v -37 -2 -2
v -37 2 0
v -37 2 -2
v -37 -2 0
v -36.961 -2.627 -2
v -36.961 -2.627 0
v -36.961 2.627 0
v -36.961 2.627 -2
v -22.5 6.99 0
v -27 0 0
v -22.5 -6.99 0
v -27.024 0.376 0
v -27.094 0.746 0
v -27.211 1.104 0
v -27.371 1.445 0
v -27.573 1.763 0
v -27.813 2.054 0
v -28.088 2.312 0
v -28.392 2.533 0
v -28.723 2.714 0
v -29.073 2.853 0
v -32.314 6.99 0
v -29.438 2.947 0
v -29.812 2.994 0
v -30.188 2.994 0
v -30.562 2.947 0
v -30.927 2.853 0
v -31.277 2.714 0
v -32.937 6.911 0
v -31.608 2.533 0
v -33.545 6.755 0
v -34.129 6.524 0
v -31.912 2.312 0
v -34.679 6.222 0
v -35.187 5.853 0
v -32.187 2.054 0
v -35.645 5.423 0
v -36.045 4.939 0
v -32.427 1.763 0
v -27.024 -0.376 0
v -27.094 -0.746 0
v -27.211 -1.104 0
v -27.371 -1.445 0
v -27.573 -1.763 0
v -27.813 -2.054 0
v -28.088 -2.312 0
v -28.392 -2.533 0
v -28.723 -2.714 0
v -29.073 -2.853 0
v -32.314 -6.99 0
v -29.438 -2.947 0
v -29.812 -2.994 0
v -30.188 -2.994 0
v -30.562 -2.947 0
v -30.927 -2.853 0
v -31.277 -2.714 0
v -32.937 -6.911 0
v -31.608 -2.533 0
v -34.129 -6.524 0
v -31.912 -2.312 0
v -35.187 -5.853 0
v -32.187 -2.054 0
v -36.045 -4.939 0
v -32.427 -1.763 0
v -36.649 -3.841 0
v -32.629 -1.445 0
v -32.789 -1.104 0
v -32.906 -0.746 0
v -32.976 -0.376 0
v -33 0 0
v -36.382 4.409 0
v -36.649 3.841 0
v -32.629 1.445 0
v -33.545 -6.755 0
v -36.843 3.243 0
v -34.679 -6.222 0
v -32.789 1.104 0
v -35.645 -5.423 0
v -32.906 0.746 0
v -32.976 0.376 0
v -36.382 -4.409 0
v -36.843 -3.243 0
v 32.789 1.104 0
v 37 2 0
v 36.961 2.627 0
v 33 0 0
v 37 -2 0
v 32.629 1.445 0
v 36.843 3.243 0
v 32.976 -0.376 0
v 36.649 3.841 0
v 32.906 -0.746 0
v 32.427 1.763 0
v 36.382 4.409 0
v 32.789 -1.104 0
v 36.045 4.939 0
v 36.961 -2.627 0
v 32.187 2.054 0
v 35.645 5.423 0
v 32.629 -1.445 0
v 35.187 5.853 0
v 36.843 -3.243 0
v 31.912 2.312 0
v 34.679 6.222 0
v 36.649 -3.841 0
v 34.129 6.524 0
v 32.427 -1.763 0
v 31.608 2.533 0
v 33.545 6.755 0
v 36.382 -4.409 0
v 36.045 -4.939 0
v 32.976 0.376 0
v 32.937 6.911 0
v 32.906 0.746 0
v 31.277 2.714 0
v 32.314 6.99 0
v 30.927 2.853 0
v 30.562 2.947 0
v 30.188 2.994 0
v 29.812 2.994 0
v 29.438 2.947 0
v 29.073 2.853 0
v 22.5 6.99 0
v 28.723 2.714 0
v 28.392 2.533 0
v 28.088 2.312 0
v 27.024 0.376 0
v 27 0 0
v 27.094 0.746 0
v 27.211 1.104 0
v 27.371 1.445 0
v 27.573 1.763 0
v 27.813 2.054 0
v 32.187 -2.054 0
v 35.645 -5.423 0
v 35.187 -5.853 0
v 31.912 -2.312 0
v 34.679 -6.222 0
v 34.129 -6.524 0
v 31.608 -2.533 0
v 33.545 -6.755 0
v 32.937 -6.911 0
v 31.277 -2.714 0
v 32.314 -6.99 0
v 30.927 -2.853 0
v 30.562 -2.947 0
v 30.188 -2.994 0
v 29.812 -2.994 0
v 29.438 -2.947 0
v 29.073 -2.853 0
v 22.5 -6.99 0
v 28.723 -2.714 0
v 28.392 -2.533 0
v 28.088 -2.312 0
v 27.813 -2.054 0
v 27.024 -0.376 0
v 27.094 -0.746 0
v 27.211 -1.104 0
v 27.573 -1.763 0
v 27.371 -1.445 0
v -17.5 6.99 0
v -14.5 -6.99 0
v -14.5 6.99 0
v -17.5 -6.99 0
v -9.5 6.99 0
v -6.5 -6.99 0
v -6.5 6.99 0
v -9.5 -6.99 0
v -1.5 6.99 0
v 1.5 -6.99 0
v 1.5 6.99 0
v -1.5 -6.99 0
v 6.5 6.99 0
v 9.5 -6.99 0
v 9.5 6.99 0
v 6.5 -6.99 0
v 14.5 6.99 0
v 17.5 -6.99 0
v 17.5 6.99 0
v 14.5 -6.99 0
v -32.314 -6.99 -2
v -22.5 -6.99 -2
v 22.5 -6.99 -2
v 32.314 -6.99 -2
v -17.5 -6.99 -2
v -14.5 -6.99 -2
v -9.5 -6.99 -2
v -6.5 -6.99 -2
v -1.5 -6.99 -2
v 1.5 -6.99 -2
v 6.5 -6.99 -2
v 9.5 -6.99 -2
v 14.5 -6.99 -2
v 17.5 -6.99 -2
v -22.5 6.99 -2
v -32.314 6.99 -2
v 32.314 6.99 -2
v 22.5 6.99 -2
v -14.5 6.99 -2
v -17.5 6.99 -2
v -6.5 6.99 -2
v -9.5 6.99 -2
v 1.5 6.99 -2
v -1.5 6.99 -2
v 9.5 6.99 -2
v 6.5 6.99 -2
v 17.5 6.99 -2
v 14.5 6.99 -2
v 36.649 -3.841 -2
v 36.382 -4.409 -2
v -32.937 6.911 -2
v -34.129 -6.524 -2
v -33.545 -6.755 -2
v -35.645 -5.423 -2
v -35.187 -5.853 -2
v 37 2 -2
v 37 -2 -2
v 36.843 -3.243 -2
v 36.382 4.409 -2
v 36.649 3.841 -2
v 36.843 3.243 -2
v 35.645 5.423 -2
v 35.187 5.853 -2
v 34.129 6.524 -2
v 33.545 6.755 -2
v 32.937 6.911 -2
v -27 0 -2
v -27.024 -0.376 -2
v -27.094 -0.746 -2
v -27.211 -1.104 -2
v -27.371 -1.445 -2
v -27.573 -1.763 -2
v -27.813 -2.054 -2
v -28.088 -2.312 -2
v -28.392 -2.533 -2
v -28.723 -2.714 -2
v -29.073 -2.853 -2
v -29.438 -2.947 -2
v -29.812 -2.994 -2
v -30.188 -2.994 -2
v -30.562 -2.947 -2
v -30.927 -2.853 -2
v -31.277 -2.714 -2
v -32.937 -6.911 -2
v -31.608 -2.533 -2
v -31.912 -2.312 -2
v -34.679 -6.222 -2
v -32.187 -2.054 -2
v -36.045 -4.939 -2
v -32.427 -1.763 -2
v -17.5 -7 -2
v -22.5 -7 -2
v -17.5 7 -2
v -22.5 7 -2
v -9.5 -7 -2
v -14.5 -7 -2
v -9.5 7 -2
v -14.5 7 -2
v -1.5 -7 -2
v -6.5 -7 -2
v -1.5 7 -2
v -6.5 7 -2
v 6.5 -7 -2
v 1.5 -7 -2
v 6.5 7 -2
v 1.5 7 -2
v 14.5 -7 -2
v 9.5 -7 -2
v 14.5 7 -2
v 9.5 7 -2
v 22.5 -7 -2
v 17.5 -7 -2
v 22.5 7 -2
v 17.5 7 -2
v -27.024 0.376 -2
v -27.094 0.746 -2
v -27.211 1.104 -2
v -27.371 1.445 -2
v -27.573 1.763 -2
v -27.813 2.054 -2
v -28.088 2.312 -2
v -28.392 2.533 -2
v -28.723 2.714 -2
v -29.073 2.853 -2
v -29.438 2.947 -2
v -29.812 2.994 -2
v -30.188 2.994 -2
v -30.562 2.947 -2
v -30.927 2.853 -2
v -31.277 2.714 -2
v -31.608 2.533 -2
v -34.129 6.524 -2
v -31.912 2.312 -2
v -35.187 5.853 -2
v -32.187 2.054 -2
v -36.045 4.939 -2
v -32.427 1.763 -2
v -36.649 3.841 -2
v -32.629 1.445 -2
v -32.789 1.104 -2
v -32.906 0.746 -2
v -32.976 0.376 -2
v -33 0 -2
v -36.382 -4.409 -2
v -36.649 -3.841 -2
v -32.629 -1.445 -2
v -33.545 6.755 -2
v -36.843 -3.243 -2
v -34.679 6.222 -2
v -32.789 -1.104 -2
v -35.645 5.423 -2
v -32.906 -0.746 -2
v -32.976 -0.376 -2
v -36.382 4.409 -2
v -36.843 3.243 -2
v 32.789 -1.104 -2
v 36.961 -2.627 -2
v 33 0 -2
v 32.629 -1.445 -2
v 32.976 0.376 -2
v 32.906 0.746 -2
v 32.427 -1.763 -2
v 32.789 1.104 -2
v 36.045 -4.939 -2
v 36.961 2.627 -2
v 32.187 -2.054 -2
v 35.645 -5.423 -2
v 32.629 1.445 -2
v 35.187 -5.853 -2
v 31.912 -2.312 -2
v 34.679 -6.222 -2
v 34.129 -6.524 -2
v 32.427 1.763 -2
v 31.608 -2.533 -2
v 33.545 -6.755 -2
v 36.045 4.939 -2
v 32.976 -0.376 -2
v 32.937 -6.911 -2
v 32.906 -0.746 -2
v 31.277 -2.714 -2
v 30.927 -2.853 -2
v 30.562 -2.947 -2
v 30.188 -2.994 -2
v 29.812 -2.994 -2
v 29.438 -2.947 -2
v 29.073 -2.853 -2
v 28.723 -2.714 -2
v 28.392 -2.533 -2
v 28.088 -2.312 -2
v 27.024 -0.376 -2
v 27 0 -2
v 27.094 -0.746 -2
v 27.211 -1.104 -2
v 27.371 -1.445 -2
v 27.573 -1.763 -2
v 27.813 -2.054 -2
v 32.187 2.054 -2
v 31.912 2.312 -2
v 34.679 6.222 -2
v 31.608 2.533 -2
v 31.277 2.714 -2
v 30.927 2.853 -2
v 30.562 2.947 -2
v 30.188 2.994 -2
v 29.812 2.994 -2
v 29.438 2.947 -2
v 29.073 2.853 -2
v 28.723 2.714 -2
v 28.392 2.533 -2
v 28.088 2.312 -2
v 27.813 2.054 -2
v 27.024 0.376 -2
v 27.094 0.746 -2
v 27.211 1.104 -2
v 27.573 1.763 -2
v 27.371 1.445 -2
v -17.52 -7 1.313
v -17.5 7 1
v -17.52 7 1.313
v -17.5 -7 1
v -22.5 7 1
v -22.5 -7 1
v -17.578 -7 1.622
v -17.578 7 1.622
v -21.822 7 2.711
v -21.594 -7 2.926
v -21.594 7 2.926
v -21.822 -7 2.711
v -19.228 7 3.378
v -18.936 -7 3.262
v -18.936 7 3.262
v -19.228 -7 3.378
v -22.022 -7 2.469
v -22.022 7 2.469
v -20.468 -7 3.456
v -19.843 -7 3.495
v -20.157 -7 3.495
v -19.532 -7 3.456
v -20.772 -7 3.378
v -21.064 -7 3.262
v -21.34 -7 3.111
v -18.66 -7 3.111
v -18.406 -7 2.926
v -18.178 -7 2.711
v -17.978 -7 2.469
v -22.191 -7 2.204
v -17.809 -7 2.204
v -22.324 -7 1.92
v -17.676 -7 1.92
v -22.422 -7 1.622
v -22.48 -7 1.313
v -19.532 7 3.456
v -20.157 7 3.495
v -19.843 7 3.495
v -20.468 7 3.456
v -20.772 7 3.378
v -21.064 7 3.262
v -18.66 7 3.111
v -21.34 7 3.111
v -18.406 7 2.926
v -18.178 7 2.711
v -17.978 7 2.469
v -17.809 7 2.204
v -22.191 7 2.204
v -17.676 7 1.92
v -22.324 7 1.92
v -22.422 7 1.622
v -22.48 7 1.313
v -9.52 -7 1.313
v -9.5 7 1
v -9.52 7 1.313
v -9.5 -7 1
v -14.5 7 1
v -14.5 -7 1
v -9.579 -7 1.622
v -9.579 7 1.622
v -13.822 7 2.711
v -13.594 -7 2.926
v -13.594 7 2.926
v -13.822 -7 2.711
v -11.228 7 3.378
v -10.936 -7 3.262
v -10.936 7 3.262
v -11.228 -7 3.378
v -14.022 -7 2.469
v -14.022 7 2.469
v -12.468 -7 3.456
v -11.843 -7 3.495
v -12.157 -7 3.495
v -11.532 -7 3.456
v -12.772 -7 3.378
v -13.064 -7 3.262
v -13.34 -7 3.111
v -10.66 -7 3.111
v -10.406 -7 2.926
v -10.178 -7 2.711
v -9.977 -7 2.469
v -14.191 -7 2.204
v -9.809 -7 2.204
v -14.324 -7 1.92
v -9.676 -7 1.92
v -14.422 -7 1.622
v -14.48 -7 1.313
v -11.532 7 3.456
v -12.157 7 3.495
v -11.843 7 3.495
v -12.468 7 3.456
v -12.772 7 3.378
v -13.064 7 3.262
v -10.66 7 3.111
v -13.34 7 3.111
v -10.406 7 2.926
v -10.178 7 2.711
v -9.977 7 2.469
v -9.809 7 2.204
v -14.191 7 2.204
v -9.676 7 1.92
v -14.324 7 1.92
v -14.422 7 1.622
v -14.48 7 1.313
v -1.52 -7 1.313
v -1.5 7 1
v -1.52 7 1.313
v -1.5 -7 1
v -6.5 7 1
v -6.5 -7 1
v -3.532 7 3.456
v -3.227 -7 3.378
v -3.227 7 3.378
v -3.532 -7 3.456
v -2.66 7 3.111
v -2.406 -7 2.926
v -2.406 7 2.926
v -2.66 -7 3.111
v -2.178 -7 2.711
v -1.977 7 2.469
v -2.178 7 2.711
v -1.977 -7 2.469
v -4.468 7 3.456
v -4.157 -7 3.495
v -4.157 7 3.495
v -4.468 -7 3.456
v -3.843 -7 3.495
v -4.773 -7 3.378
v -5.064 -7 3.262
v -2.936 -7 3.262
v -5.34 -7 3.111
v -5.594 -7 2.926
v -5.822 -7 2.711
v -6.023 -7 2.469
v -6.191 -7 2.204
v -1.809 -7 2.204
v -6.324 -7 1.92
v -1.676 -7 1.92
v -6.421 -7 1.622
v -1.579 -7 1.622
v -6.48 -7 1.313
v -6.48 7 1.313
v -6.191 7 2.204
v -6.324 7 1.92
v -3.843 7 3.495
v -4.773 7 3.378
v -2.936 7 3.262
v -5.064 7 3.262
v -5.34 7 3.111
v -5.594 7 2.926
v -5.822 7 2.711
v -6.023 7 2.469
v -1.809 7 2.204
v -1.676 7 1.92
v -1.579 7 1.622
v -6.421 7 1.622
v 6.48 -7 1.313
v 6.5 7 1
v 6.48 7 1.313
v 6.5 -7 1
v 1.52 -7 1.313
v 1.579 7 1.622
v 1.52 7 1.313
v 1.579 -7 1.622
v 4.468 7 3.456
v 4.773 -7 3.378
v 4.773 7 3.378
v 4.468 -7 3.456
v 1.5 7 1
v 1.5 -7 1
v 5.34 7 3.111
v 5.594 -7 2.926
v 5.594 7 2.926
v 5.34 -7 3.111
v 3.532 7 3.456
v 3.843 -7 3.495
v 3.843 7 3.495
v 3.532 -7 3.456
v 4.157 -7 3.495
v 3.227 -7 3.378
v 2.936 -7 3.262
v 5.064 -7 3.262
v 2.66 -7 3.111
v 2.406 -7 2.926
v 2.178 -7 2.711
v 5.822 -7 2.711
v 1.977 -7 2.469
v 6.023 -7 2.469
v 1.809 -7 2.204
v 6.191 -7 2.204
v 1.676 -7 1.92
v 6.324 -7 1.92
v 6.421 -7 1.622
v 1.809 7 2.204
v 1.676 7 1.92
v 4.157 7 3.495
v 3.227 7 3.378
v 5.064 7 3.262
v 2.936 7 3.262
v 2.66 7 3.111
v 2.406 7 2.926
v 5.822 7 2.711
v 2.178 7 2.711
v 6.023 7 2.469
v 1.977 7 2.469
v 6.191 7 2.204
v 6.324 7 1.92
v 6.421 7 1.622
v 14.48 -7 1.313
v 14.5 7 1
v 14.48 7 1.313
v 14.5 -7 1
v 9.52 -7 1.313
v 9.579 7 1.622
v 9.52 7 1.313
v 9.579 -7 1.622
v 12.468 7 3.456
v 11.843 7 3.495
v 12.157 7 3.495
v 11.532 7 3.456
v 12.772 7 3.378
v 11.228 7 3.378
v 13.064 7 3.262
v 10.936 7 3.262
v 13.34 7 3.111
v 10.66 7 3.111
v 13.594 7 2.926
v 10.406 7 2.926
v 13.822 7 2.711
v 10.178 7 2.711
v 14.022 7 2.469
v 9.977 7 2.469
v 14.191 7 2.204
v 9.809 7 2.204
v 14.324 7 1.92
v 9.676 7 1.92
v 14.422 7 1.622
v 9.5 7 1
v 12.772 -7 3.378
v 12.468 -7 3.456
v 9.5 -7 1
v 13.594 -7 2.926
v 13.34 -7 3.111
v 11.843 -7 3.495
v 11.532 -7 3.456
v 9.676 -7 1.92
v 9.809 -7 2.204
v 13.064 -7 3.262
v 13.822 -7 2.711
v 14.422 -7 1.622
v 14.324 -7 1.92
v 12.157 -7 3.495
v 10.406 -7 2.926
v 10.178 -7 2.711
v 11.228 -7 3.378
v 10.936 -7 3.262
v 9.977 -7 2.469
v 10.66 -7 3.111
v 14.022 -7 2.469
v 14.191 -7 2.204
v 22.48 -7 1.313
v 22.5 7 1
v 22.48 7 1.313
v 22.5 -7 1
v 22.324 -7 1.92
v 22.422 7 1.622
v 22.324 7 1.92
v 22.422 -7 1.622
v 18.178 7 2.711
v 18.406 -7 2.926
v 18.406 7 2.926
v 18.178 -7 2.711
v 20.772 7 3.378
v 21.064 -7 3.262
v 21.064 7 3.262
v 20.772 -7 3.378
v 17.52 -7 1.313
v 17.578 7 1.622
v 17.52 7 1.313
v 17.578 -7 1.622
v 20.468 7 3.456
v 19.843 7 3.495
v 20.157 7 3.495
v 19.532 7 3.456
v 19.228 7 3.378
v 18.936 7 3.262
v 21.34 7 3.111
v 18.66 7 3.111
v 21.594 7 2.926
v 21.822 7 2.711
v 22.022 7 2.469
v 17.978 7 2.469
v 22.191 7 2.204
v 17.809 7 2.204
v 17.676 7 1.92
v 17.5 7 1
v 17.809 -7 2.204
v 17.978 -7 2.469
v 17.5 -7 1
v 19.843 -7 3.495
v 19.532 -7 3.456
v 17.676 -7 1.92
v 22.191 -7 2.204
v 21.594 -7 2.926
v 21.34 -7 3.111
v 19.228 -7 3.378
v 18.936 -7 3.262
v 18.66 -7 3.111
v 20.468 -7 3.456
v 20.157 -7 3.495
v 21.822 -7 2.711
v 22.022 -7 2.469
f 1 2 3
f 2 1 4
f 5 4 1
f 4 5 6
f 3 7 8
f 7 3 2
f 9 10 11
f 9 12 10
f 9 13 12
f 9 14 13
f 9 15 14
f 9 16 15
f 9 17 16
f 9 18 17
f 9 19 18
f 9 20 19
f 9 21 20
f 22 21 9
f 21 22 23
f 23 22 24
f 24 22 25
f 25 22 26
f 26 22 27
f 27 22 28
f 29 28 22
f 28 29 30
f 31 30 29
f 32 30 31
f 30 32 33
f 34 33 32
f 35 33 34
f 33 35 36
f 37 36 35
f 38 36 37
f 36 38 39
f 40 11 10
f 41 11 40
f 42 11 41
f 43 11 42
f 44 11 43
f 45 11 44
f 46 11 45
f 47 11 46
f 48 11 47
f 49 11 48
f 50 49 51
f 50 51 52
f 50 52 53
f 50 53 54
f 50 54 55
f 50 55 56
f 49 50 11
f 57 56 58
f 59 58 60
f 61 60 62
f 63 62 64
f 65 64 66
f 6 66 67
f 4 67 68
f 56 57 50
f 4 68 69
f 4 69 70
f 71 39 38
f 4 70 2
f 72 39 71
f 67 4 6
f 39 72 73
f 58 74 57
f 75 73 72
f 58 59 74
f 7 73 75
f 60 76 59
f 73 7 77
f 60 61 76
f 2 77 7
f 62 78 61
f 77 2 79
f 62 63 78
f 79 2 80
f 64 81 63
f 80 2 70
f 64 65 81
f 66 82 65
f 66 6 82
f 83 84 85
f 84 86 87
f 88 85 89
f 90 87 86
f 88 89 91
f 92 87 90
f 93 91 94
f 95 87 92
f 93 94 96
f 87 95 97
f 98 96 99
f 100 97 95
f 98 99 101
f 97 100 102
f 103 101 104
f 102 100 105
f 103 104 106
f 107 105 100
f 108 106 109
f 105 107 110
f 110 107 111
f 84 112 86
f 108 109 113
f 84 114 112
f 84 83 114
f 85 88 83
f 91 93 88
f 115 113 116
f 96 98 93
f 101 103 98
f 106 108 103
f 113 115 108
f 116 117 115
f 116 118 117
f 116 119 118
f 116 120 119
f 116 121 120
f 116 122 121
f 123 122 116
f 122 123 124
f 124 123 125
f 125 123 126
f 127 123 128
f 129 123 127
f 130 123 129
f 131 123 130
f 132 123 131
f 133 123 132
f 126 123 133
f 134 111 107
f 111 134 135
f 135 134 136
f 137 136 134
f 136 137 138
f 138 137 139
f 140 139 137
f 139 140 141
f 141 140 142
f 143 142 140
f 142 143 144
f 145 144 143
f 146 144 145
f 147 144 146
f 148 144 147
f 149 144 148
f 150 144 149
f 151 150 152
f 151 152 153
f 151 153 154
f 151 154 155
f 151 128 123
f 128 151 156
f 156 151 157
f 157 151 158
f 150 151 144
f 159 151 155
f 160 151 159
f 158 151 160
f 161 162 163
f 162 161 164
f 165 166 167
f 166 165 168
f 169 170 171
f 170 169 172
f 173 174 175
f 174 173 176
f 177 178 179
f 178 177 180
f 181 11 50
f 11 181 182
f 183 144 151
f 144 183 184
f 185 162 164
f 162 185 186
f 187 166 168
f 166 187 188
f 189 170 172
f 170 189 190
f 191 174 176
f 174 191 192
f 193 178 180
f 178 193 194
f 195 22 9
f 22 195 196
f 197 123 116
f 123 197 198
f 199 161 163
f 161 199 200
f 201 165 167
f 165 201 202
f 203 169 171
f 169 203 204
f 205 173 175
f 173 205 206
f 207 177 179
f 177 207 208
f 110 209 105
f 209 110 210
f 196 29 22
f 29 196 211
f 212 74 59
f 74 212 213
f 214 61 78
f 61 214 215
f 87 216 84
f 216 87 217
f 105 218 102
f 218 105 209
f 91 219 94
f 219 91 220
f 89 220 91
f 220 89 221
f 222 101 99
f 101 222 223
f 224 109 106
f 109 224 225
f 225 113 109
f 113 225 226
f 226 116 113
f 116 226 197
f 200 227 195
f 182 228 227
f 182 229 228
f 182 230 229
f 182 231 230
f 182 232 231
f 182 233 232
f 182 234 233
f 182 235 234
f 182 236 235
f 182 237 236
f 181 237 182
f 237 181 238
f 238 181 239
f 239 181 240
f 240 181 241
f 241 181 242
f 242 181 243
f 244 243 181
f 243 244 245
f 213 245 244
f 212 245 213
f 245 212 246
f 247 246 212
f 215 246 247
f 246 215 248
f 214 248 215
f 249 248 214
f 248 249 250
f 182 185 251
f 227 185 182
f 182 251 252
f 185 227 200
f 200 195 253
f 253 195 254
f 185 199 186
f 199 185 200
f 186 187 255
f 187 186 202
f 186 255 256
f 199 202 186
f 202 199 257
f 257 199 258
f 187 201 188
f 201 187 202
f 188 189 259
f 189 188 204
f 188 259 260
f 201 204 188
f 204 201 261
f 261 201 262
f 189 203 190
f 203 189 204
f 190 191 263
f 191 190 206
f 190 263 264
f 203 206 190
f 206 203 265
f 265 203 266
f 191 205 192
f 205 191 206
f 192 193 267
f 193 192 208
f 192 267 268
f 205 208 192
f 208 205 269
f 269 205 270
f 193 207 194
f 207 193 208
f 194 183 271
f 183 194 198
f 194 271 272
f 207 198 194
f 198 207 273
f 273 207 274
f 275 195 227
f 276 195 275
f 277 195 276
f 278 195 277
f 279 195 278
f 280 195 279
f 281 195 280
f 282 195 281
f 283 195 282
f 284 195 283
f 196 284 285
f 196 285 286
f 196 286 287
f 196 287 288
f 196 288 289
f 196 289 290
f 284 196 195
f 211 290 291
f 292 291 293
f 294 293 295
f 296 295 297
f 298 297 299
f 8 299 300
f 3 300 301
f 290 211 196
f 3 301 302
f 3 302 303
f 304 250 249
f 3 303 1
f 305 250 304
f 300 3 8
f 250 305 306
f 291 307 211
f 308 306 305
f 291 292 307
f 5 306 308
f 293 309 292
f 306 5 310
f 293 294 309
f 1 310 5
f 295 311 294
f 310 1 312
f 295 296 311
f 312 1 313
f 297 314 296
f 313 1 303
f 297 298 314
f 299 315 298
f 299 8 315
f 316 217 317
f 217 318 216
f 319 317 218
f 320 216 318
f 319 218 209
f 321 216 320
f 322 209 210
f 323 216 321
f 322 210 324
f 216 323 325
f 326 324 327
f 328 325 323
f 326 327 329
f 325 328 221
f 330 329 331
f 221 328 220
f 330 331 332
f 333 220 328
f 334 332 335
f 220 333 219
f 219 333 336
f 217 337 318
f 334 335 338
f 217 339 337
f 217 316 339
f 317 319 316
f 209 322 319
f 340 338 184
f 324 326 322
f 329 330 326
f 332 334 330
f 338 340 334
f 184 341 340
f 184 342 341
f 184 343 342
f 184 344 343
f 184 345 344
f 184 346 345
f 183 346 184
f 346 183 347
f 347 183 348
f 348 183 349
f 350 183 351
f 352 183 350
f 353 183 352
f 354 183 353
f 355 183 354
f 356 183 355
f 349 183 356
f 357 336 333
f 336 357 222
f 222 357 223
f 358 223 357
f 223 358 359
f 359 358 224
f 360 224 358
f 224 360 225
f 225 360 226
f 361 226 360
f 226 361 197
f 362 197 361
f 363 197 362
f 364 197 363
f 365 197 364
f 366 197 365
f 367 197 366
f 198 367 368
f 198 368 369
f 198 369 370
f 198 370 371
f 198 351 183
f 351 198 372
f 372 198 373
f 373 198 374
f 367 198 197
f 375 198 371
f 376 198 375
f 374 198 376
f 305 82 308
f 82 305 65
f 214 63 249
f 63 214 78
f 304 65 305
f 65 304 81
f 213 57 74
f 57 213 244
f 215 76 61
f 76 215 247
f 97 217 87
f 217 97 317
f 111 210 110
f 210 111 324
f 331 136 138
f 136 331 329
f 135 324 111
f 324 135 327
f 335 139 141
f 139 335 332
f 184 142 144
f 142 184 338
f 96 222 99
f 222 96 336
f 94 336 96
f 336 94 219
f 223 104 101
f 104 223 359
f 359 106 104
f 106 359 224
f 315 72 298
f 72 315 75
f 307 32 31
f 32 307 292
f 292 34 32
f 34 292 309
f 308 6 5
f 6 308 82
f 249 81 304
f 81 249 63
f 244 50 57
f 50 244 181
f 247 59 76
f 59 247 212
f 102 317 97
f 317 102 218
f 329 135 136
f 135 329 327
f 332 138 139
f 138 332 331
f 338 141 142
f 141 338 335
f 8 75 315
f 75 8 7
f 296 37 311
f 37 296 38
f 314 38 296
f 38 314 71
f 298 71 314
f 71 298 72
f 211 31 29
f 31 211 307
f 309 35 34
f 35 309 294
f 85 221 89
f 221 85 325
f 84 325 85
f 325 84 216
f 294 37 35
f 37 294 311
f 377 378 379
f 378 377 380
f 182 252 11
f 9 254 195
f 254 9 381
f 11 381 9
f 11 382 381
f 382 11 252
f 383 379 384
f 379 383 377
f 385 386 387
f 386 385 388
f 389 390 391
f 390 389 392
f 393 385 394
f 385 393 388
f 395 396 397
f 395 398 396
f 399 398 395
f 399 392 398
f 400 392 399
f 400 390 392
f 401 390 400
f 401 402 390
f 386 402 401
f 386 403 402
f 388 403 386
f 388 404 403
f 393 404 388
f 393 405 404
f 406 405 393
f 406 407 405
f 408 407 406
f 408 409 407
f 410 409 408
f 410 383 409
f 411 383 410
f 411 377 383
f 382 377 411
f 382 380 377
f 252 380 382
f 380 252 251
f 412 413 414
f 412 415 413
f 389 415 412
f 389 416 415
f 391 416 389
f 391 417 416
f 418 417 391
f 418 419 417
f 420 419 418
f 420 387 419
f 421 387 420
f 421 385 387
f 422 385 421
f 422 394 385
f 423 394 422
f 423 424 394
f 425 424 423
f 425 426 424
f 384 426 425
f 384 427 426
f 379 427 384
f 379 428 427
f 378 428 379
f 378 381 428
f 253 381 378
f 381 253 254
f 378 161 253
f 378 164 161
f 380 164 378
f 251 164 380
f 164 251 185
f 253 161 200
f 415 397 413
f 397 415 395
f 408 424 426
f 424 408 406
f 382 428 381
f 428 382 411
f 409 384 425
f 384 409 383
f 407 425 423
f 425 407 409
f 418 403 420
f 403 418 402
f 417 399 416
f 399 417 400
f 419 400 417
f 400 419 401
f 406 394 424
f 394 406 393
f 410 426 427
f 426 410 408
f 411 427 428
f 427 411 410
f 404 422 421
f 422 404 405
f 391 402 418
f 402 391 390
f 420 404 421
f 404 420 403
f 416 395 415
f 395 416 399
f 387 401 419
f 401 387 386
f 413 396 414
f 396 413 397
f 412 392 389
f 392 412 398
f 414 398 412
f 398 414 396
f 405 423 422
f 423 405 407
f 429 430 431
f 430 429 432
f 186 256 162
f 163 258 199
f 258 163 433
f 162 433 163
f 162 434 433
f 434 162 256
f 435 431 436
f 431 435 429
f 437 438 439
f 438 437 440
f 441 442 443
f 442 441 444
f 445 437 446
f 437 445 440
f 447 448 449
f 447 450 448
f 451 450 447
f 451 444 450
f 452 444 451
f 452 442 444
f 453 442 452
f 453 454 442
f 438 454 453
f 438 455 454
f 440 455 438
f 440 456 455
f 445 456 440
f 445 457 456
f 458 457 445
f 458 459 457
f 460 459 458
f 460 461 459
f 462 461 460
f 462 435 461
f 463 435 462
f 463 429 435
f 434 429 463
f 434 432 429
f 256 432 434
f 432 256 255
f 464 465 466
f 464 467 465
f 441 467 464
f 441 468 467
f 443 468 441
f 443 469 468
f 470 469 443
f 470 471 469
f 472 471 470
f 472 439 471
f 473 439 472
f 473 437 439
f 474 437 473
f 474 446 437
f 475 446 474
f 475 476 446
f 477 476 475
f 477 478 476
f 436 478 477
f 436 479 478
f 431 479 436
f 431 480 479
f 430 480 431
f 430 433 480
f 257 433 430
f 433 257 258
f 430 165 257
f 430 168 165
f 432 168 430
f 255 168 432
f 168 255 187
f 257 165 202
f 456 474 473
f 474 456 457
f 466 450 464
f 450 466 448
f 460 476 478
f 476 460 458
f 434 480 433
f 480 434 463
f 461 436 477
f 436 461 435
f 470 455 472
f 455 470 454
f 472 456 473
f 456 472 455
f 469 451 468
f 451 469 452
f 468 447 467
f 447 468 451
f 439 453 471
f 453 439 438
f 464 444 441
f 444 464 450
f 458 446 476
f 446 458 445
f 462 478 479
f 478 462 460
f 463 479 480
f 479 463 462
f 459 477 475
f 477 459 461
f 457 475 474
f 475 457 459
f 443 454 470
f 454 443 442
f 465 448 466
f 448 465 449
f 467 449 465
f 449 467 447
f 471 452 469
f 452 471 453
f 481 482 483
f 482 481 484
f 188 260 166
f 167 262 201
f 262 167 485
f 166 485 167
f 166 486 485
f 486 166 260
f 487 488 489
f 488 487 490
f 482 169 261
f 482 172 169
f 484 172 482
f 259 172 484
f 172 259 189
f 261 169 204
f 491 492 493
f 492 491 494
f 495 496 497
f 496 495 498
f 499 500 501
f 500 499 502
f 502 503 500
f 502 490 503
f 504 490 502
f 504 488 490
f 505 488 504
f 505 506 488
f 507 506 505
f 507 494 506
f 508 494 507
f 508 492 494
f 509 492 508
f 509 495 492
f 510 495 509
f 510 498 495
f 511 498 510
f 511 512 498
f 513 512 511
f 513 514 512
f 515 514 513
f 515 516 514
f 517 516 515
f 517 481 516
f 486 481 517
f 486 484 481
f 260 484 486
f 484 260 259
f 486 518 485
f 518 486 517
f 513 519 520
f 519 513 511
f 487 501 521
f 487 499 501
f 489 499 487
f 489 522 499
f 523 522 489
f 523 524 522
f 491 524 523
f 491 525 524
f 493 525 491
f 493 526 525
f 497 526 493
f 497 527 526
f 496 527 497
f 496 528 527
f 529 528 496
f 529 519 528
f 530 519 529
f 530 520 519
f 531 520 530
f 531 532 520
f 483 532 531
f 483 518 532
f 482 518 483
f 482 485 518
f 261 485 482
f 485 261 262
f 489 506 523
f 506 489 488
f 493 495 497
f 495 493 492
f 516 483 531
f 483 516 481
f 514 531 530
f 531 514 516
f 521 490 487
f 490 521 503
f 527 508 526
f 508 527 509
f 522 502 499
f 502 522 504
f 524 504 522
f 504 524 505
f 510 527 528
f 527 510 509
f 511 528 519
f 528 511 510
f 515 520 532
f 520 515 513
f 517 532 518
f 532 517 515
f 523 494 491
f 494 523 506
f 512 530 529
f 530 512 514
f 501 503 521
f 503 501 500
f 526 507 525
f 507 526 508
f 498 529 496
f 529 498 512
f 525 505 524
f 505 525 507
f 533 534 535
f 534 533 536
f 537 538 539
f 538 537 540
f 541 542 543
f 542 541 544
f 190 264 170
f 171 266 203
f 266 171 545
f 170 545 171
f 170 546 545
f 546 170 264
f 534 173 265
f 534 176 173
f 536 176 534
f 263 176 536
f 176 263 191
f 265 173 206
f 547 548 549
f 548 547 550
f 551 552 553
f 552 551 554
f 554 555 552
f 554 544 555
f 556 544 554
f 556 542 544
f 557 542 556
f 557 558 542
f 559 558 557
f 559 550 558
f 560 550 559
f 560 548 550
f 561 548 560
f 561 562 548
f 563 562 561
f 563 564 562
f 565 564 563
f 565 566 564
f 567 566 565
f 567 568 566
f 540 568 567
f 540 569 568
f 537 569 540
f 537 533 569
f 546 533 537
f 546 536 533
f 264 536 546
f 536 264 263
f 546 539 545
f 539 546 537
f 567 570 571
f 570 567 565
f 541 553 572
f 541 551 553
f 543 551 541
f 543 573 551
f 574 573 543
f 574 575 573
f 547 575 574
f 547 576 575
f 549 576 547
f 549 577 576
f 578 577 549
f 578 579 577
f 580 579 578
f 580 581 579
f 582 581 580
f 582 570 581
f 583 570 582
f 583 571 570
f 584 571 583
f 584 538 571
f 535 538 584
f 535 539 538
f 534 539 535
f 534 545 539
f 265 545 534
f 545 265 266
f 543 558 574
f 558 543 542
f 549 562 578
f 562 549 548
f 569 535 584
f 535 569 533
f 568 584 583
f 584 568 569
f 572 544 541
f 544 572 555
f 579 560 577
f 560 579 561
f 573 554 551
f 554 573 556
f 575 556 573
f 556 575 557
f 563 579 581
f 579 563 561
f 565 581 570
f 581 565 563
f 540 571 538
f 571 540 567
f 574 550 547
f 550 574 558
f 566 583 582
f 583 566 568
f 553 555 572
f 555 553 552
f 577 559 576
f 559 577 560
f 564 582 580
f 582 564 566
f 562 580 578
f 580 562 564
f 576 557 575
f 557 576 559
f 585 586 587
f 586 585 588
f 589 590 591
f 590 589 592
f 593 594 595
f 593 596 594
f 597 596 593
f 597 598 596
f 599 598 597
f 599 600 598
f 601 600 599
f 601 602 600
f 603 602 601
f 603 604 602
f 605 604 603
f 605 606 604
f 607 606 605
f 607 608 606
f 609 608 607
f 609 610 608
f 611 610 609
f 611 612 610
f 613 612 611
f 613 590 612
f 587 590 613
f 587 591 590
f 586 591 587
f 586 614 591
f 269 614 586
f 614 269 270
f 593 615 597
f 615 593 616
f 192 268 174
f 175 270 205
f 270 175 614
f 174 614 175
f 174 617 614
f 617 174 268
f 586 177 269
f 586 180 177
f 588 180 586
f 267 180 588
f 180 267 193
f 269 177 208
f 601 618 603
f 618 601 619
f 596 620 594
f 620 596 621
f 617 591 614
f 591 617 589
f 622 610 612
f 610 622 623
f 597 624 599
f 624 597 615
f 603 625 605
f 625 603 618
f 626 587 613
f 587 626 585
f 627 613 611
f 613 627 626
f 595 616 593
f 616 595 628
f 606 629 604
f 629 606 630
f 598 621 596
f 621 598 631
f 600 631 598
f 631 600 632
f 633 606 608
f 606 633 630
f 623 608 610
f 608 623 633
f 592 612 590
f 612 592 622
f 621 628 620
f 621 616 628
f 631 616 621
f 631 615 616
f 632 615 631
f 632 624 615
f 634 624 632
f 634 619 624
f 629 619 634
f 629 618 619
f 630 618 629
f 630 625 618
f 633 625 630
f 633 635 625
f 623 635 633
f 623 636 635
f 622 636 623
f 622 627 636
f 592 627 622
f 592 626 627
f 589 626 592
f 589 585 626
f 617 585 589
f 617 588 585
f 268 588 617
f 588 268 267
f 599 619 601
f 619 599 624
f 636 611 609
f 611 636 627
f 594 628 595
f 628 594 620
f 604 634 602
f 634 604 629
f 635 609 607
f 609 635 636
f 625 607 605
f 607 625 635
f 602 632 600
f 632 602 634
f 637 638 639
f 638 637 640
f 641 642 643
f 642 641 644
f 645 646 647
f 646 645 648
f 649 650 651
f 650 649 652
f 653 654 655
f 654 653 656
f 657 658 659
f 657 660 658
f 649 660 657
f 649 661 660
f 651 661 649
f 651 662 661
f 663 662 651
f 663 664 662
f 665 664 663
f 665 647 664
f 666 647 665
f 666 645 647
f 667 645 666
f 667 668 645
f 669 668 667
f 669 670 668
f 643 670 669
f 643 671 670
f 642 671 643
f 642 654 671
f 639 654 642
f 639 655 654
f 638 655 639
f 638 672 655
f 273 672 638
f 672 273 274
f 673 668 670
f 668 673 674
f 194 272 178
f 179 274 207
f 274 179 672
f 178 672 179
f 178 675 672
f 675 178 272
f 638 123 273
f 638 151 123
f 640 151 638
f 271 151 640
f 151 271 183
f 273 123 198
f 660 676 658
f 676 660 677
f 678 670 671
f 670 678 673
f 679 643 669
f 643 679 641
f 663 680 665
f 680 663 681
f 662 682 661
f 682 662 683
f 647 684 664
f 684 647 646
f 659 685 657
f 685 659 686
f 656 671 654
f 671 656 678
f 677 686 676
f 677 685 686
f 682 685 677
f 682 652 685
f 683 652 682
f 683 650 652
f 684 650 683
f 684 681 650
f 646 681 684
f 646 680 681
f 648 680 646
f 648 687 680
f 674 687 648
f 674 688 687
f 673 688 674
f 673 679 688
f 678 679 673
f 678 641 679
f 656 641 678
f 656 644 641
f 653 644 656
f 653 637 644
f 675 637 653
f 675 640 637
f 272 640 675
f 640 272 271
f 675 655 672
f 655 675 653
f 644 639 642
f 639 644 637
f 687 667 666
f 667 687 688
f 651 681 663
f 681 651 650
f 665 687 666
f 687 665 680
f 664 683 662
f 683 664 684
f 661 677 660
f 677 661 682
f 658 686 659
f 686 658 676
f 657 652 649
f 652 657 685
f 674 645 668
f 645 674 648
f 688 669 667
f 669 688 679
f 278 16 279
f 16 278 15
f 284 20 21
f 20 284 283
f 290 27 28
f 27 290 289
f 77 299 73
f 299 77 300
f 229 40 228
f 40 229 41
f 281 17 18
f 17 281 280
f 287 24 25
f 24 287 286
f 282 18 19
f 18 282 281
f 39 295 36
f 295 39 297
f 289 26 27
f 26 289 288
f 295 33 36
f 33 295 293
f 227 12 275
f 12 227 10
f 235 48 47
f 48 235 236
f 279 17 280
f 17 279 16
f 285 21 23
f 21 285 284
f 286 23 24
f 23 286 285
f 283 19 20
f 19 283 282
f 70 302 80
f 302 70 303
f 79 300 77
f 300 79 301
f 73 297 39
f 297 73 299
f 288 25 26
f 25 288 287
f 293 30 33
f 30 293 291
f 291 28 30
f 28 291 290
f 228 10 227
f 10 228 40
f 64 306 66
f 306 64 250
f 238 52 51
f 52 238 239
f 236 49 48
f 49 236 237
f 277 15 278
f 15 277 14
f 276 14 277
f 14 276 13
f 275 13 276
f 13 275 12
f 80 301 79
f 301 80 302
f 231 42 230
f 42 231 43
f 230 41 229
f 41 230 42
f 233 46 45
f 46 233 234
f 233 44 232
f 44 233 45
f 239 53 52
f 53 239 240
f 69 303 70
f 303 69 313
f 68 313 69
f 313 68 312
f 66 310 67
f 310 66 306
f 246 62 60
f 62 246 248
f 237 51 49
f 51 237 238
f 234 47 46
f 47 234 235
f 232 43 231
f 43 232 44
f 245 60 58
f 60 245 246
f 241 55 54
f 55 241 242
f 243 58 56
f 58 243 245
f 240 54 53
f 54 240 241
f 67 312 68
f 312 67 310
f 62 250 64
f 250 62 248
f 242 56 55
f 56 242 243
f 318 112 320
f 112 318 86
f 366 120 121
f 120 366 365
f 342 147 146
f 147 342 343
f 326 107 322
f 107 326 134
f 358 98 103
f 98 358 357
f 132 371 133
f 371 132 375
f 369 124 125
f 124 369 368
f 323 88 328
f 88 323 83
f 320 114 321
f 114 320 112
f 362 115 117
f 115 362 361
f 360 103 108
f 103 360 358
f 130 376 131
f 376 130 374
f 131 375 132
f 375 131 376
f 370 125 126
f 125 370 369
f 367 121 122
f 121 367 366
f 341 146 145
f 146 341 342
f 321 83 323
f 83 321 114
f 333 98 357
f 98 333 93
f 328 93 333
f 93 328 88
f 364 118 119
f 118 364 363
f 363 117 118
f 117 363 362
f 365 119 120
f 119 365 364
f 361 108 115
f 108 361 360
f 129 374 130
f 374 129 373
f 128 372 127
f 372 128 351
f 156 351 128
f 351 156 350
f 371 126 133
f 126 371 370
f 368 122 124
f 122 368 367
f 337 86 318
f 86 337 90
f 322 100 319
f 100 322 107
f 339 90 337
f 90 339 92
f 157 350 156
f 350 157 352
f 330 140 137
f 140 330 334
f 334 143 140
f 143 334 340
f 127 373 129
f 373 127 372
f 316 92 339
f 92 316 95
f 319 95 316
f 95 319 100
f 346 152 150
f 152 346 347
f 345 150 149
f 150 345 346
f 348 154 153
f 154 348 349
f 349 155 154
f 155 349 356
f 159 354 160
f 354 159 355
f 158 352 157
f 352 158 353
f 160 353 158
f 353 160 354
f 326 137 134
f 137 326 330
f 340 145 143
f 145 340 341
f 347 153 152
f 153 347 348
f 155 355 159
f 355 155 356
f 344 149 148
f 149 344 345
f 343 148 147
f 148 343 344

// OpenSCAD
$fn = 50;


difference() {
	union() {
		translate(v = [0, 0, -2]) {
			hull() {
				translate(v = [-32.0000000000, 2.0000000000, 0]) {
					cylinder(h = 2, r = 5);
				}
				translate(v = [32.0000000000, 2.0000000000, 0]) {
					cylinder(h = 2, r = 5);
				}
				translate(v = [-32.0000000000, -2.0000000000, 0]) {
					cylinder(h = 2, r = 5);
				}
				translate(v = [32.0000000000, -2.0000000000, 0]) {
					cylinder(h = 2, r = 5);
				}
			}
		}
		translate(v = [-20.0000000000, 7.0000000000, -1.5000000000]) {
			rotate(a = [90, 0, 0]) {
				hull() {
					translate(v = [-0.0000000000, 2.5000000000, 0]) {
						cylinder(h = 14, r = 2.5000000000);
					}
					translate(v = [0.0000000000, 2.5000000000, 0]) {
						cylinder(h = 14, r = 2.5000000000);
					}
					translate(v = [-0.0000000000, -2.5000000000, 0]) {
						cylinder(h = 14, r = 2.5000000000);
					}
					translate(v = [0.0000000000, -2.5000000000, 0]) {
						cylinder(h = 14, r = 2.5000000000);
					}
				}
			}
		}
		translate(v = [-12.0000000000, 7.0000000000, -1.5000000000]) {
			rotate(a = [90, 0, 0]) {
				hull() {
					translate(v = [-0.0000000000, 2.5000000000, 0]) {
						cylinder(h = 14, r = 2.5000000000);
					}
					translate(v = [0.0000000000, 2.5000000000, 0]) {
						cylinder(h = 14, r = 2.5000000000);
					}
					translate(v = [-0.0000000000, -2.5000000000, 0]) {
						cylinder(h = 14, r = 2.5000000000);
					}
					translate(v = [0.0000000000, -2.5000000000, 0]) {
						cylinder(h = 14, r = 2.5000000000);
					}
				}
			}
		}
		translate(v = [-4.0000000000, 7.0000000000, -1.5000000000]) {
			rotate(a = [90, 0, 0]) {
				hull() {
					translate(v = [-0.0000000000, 2.5000000000, 0]) {
						cylinder(h = 14, r = 2.5000000000);
					}
					translate(v = [0.0000000000, 2.5000000000, 0]) {
						cylinder(h = 14, r = 2.5000000000);
					}
					translate(v = [-0.0000000000, -2.5000000000, 0]) {
						cylinder(h = 14, r = 2.5000000000);
					}
					translate(v = [0.0000000000, -2.5000000000, 0]) {
						cylinder(h = 14, r = 2.5000000000);
					}
				}
			}
		}
		translate(v = [4.0000000000, 7.0000000000, -1.5000000000]) {
			rotate(a = [90, 0, 0]) {
				hull() {
					translate(v = [-0.0000000000, 2.5000000000, 0]) {
						cylinder(h = 14, r = 2.5000000000);
					}
					translate(v = [0.0000000000, 2.5000000000, 0]) {
						cylinder(h = 14, r = 2.5000000000);
					}
					translate(v = [-0.0000000000, -2.5000000000, 0]) {
						cylinder(h = 14, r = 2.5000000000);
					}
					translate(v = [0.0000000000, -2.5000000000, 0]) {
						cylinder(h = 14, r = 2.5000000000);
					}
				}
			}
		}
		translate(v = [12.0000000000, 7.0000000000, -1.5000000000]) {
			rotate(a = [90, 0, 0]) {
				hull() {
					translate(v = [-0.0000000000, 2.5000000000, 0]) {
						cylinder(h = 14, r = 2.5000000000);
					}
					translate(v = [0.0000000000, 2.5000000000, 0]) {
						cylinder(h = 14, r = 2.5000000000);
					}
					translate(v = [-0.0000000000, -2.5000000000, 0]) {
						cylinder(h = 14, r = 2.5000000000);
					}
					translate(v = [0.0000000000, -2.5000000000, 0]) {
						cylinder(h = 14, r = 2.5000000000);
					}
				}
			}
		}
		translate(v = [20.0000000000, 7.0000000000, -1.5000000000]) {
			rotate(a = [90, 0, 0]) {
				hull() {
					translate(v = [-0.0000000000, 2.5000000000, 0]) {
						cylinder(h = 14, r = 2.5000000000);
					}
					translate(v = [0.0000000000, 2.5000000000, 0]) {
						cylinder(h = 14, r = 2.5000000000);
					}
					translate(v = [-0.0000000000, -2.5000000000, 0]) {
						cylinder(h = 14, r = 2.5000000000);
					}
					translate(v = [0.0000000000, -2.5000000000, 0]) {
						cylinder(h = 14, r = 2.5000000000);
					}
				}
			}
		}
	}
	union() {
		translate(v = [-250.0000000000, -250.0000000000, -502]) {
			cube(size = [500, 500, 500]);
		}
		translate(v = [-250.0000000000, -250.0000000000, -502]) {
			cube(size = [500, 500, 500]);
		}
		translate(v = [-250.0000000000, -250.0000000000, -502]) {
			cube(size = [500, 500, 500]);
		}
		translate(v = [-30.0000000000, 0.0000000000, -100.0000000000]) {
			cylinder(h = 200, r = 3.0000000000);
		}
		translate(v = [30.0000000000, 0.0000000000, -100.0000000000]) {
			cylinder(h = 200, r = 3.0000000000);
		}
		translate(v = [30.0000000000, 0.0000000000, -100.0000000000]) {
			cylinder(h = 200, r = 3.0000000000);
		}
		translate(v = [-30.0000000000, 0.0000000000, -100.0000000000]) {
			cylinder(h = 200, r = 1.5000000000);
		}
		translate(v = [30.0000000000, 0.0000000000, -100.0000000000]) {
			cylinder(h = 200, r = 1.5000000000);
		}
		translate(v = [-30.0000000000, 0.0000000000, -100.0000000000]) {
			cylinder(h = 200, r = 1.5000000000);
		}
		translate(v = [30.0000000000, 0.0000000000, -100.0000000000]) {
			cylinder(h = 200, r = 1.5000000000);
		}
		translate(v = [-30.0000000000, 0.0000000000, -100.0000000000]) {
			cylinder(h = 200, r = 1.5000000000);
		}
		translate(v = [30.0000000000, 0.0000000000, -100.0000000000]) {
			cylinder(h = 200, r = 1.5000000000);
		}
	}
}
